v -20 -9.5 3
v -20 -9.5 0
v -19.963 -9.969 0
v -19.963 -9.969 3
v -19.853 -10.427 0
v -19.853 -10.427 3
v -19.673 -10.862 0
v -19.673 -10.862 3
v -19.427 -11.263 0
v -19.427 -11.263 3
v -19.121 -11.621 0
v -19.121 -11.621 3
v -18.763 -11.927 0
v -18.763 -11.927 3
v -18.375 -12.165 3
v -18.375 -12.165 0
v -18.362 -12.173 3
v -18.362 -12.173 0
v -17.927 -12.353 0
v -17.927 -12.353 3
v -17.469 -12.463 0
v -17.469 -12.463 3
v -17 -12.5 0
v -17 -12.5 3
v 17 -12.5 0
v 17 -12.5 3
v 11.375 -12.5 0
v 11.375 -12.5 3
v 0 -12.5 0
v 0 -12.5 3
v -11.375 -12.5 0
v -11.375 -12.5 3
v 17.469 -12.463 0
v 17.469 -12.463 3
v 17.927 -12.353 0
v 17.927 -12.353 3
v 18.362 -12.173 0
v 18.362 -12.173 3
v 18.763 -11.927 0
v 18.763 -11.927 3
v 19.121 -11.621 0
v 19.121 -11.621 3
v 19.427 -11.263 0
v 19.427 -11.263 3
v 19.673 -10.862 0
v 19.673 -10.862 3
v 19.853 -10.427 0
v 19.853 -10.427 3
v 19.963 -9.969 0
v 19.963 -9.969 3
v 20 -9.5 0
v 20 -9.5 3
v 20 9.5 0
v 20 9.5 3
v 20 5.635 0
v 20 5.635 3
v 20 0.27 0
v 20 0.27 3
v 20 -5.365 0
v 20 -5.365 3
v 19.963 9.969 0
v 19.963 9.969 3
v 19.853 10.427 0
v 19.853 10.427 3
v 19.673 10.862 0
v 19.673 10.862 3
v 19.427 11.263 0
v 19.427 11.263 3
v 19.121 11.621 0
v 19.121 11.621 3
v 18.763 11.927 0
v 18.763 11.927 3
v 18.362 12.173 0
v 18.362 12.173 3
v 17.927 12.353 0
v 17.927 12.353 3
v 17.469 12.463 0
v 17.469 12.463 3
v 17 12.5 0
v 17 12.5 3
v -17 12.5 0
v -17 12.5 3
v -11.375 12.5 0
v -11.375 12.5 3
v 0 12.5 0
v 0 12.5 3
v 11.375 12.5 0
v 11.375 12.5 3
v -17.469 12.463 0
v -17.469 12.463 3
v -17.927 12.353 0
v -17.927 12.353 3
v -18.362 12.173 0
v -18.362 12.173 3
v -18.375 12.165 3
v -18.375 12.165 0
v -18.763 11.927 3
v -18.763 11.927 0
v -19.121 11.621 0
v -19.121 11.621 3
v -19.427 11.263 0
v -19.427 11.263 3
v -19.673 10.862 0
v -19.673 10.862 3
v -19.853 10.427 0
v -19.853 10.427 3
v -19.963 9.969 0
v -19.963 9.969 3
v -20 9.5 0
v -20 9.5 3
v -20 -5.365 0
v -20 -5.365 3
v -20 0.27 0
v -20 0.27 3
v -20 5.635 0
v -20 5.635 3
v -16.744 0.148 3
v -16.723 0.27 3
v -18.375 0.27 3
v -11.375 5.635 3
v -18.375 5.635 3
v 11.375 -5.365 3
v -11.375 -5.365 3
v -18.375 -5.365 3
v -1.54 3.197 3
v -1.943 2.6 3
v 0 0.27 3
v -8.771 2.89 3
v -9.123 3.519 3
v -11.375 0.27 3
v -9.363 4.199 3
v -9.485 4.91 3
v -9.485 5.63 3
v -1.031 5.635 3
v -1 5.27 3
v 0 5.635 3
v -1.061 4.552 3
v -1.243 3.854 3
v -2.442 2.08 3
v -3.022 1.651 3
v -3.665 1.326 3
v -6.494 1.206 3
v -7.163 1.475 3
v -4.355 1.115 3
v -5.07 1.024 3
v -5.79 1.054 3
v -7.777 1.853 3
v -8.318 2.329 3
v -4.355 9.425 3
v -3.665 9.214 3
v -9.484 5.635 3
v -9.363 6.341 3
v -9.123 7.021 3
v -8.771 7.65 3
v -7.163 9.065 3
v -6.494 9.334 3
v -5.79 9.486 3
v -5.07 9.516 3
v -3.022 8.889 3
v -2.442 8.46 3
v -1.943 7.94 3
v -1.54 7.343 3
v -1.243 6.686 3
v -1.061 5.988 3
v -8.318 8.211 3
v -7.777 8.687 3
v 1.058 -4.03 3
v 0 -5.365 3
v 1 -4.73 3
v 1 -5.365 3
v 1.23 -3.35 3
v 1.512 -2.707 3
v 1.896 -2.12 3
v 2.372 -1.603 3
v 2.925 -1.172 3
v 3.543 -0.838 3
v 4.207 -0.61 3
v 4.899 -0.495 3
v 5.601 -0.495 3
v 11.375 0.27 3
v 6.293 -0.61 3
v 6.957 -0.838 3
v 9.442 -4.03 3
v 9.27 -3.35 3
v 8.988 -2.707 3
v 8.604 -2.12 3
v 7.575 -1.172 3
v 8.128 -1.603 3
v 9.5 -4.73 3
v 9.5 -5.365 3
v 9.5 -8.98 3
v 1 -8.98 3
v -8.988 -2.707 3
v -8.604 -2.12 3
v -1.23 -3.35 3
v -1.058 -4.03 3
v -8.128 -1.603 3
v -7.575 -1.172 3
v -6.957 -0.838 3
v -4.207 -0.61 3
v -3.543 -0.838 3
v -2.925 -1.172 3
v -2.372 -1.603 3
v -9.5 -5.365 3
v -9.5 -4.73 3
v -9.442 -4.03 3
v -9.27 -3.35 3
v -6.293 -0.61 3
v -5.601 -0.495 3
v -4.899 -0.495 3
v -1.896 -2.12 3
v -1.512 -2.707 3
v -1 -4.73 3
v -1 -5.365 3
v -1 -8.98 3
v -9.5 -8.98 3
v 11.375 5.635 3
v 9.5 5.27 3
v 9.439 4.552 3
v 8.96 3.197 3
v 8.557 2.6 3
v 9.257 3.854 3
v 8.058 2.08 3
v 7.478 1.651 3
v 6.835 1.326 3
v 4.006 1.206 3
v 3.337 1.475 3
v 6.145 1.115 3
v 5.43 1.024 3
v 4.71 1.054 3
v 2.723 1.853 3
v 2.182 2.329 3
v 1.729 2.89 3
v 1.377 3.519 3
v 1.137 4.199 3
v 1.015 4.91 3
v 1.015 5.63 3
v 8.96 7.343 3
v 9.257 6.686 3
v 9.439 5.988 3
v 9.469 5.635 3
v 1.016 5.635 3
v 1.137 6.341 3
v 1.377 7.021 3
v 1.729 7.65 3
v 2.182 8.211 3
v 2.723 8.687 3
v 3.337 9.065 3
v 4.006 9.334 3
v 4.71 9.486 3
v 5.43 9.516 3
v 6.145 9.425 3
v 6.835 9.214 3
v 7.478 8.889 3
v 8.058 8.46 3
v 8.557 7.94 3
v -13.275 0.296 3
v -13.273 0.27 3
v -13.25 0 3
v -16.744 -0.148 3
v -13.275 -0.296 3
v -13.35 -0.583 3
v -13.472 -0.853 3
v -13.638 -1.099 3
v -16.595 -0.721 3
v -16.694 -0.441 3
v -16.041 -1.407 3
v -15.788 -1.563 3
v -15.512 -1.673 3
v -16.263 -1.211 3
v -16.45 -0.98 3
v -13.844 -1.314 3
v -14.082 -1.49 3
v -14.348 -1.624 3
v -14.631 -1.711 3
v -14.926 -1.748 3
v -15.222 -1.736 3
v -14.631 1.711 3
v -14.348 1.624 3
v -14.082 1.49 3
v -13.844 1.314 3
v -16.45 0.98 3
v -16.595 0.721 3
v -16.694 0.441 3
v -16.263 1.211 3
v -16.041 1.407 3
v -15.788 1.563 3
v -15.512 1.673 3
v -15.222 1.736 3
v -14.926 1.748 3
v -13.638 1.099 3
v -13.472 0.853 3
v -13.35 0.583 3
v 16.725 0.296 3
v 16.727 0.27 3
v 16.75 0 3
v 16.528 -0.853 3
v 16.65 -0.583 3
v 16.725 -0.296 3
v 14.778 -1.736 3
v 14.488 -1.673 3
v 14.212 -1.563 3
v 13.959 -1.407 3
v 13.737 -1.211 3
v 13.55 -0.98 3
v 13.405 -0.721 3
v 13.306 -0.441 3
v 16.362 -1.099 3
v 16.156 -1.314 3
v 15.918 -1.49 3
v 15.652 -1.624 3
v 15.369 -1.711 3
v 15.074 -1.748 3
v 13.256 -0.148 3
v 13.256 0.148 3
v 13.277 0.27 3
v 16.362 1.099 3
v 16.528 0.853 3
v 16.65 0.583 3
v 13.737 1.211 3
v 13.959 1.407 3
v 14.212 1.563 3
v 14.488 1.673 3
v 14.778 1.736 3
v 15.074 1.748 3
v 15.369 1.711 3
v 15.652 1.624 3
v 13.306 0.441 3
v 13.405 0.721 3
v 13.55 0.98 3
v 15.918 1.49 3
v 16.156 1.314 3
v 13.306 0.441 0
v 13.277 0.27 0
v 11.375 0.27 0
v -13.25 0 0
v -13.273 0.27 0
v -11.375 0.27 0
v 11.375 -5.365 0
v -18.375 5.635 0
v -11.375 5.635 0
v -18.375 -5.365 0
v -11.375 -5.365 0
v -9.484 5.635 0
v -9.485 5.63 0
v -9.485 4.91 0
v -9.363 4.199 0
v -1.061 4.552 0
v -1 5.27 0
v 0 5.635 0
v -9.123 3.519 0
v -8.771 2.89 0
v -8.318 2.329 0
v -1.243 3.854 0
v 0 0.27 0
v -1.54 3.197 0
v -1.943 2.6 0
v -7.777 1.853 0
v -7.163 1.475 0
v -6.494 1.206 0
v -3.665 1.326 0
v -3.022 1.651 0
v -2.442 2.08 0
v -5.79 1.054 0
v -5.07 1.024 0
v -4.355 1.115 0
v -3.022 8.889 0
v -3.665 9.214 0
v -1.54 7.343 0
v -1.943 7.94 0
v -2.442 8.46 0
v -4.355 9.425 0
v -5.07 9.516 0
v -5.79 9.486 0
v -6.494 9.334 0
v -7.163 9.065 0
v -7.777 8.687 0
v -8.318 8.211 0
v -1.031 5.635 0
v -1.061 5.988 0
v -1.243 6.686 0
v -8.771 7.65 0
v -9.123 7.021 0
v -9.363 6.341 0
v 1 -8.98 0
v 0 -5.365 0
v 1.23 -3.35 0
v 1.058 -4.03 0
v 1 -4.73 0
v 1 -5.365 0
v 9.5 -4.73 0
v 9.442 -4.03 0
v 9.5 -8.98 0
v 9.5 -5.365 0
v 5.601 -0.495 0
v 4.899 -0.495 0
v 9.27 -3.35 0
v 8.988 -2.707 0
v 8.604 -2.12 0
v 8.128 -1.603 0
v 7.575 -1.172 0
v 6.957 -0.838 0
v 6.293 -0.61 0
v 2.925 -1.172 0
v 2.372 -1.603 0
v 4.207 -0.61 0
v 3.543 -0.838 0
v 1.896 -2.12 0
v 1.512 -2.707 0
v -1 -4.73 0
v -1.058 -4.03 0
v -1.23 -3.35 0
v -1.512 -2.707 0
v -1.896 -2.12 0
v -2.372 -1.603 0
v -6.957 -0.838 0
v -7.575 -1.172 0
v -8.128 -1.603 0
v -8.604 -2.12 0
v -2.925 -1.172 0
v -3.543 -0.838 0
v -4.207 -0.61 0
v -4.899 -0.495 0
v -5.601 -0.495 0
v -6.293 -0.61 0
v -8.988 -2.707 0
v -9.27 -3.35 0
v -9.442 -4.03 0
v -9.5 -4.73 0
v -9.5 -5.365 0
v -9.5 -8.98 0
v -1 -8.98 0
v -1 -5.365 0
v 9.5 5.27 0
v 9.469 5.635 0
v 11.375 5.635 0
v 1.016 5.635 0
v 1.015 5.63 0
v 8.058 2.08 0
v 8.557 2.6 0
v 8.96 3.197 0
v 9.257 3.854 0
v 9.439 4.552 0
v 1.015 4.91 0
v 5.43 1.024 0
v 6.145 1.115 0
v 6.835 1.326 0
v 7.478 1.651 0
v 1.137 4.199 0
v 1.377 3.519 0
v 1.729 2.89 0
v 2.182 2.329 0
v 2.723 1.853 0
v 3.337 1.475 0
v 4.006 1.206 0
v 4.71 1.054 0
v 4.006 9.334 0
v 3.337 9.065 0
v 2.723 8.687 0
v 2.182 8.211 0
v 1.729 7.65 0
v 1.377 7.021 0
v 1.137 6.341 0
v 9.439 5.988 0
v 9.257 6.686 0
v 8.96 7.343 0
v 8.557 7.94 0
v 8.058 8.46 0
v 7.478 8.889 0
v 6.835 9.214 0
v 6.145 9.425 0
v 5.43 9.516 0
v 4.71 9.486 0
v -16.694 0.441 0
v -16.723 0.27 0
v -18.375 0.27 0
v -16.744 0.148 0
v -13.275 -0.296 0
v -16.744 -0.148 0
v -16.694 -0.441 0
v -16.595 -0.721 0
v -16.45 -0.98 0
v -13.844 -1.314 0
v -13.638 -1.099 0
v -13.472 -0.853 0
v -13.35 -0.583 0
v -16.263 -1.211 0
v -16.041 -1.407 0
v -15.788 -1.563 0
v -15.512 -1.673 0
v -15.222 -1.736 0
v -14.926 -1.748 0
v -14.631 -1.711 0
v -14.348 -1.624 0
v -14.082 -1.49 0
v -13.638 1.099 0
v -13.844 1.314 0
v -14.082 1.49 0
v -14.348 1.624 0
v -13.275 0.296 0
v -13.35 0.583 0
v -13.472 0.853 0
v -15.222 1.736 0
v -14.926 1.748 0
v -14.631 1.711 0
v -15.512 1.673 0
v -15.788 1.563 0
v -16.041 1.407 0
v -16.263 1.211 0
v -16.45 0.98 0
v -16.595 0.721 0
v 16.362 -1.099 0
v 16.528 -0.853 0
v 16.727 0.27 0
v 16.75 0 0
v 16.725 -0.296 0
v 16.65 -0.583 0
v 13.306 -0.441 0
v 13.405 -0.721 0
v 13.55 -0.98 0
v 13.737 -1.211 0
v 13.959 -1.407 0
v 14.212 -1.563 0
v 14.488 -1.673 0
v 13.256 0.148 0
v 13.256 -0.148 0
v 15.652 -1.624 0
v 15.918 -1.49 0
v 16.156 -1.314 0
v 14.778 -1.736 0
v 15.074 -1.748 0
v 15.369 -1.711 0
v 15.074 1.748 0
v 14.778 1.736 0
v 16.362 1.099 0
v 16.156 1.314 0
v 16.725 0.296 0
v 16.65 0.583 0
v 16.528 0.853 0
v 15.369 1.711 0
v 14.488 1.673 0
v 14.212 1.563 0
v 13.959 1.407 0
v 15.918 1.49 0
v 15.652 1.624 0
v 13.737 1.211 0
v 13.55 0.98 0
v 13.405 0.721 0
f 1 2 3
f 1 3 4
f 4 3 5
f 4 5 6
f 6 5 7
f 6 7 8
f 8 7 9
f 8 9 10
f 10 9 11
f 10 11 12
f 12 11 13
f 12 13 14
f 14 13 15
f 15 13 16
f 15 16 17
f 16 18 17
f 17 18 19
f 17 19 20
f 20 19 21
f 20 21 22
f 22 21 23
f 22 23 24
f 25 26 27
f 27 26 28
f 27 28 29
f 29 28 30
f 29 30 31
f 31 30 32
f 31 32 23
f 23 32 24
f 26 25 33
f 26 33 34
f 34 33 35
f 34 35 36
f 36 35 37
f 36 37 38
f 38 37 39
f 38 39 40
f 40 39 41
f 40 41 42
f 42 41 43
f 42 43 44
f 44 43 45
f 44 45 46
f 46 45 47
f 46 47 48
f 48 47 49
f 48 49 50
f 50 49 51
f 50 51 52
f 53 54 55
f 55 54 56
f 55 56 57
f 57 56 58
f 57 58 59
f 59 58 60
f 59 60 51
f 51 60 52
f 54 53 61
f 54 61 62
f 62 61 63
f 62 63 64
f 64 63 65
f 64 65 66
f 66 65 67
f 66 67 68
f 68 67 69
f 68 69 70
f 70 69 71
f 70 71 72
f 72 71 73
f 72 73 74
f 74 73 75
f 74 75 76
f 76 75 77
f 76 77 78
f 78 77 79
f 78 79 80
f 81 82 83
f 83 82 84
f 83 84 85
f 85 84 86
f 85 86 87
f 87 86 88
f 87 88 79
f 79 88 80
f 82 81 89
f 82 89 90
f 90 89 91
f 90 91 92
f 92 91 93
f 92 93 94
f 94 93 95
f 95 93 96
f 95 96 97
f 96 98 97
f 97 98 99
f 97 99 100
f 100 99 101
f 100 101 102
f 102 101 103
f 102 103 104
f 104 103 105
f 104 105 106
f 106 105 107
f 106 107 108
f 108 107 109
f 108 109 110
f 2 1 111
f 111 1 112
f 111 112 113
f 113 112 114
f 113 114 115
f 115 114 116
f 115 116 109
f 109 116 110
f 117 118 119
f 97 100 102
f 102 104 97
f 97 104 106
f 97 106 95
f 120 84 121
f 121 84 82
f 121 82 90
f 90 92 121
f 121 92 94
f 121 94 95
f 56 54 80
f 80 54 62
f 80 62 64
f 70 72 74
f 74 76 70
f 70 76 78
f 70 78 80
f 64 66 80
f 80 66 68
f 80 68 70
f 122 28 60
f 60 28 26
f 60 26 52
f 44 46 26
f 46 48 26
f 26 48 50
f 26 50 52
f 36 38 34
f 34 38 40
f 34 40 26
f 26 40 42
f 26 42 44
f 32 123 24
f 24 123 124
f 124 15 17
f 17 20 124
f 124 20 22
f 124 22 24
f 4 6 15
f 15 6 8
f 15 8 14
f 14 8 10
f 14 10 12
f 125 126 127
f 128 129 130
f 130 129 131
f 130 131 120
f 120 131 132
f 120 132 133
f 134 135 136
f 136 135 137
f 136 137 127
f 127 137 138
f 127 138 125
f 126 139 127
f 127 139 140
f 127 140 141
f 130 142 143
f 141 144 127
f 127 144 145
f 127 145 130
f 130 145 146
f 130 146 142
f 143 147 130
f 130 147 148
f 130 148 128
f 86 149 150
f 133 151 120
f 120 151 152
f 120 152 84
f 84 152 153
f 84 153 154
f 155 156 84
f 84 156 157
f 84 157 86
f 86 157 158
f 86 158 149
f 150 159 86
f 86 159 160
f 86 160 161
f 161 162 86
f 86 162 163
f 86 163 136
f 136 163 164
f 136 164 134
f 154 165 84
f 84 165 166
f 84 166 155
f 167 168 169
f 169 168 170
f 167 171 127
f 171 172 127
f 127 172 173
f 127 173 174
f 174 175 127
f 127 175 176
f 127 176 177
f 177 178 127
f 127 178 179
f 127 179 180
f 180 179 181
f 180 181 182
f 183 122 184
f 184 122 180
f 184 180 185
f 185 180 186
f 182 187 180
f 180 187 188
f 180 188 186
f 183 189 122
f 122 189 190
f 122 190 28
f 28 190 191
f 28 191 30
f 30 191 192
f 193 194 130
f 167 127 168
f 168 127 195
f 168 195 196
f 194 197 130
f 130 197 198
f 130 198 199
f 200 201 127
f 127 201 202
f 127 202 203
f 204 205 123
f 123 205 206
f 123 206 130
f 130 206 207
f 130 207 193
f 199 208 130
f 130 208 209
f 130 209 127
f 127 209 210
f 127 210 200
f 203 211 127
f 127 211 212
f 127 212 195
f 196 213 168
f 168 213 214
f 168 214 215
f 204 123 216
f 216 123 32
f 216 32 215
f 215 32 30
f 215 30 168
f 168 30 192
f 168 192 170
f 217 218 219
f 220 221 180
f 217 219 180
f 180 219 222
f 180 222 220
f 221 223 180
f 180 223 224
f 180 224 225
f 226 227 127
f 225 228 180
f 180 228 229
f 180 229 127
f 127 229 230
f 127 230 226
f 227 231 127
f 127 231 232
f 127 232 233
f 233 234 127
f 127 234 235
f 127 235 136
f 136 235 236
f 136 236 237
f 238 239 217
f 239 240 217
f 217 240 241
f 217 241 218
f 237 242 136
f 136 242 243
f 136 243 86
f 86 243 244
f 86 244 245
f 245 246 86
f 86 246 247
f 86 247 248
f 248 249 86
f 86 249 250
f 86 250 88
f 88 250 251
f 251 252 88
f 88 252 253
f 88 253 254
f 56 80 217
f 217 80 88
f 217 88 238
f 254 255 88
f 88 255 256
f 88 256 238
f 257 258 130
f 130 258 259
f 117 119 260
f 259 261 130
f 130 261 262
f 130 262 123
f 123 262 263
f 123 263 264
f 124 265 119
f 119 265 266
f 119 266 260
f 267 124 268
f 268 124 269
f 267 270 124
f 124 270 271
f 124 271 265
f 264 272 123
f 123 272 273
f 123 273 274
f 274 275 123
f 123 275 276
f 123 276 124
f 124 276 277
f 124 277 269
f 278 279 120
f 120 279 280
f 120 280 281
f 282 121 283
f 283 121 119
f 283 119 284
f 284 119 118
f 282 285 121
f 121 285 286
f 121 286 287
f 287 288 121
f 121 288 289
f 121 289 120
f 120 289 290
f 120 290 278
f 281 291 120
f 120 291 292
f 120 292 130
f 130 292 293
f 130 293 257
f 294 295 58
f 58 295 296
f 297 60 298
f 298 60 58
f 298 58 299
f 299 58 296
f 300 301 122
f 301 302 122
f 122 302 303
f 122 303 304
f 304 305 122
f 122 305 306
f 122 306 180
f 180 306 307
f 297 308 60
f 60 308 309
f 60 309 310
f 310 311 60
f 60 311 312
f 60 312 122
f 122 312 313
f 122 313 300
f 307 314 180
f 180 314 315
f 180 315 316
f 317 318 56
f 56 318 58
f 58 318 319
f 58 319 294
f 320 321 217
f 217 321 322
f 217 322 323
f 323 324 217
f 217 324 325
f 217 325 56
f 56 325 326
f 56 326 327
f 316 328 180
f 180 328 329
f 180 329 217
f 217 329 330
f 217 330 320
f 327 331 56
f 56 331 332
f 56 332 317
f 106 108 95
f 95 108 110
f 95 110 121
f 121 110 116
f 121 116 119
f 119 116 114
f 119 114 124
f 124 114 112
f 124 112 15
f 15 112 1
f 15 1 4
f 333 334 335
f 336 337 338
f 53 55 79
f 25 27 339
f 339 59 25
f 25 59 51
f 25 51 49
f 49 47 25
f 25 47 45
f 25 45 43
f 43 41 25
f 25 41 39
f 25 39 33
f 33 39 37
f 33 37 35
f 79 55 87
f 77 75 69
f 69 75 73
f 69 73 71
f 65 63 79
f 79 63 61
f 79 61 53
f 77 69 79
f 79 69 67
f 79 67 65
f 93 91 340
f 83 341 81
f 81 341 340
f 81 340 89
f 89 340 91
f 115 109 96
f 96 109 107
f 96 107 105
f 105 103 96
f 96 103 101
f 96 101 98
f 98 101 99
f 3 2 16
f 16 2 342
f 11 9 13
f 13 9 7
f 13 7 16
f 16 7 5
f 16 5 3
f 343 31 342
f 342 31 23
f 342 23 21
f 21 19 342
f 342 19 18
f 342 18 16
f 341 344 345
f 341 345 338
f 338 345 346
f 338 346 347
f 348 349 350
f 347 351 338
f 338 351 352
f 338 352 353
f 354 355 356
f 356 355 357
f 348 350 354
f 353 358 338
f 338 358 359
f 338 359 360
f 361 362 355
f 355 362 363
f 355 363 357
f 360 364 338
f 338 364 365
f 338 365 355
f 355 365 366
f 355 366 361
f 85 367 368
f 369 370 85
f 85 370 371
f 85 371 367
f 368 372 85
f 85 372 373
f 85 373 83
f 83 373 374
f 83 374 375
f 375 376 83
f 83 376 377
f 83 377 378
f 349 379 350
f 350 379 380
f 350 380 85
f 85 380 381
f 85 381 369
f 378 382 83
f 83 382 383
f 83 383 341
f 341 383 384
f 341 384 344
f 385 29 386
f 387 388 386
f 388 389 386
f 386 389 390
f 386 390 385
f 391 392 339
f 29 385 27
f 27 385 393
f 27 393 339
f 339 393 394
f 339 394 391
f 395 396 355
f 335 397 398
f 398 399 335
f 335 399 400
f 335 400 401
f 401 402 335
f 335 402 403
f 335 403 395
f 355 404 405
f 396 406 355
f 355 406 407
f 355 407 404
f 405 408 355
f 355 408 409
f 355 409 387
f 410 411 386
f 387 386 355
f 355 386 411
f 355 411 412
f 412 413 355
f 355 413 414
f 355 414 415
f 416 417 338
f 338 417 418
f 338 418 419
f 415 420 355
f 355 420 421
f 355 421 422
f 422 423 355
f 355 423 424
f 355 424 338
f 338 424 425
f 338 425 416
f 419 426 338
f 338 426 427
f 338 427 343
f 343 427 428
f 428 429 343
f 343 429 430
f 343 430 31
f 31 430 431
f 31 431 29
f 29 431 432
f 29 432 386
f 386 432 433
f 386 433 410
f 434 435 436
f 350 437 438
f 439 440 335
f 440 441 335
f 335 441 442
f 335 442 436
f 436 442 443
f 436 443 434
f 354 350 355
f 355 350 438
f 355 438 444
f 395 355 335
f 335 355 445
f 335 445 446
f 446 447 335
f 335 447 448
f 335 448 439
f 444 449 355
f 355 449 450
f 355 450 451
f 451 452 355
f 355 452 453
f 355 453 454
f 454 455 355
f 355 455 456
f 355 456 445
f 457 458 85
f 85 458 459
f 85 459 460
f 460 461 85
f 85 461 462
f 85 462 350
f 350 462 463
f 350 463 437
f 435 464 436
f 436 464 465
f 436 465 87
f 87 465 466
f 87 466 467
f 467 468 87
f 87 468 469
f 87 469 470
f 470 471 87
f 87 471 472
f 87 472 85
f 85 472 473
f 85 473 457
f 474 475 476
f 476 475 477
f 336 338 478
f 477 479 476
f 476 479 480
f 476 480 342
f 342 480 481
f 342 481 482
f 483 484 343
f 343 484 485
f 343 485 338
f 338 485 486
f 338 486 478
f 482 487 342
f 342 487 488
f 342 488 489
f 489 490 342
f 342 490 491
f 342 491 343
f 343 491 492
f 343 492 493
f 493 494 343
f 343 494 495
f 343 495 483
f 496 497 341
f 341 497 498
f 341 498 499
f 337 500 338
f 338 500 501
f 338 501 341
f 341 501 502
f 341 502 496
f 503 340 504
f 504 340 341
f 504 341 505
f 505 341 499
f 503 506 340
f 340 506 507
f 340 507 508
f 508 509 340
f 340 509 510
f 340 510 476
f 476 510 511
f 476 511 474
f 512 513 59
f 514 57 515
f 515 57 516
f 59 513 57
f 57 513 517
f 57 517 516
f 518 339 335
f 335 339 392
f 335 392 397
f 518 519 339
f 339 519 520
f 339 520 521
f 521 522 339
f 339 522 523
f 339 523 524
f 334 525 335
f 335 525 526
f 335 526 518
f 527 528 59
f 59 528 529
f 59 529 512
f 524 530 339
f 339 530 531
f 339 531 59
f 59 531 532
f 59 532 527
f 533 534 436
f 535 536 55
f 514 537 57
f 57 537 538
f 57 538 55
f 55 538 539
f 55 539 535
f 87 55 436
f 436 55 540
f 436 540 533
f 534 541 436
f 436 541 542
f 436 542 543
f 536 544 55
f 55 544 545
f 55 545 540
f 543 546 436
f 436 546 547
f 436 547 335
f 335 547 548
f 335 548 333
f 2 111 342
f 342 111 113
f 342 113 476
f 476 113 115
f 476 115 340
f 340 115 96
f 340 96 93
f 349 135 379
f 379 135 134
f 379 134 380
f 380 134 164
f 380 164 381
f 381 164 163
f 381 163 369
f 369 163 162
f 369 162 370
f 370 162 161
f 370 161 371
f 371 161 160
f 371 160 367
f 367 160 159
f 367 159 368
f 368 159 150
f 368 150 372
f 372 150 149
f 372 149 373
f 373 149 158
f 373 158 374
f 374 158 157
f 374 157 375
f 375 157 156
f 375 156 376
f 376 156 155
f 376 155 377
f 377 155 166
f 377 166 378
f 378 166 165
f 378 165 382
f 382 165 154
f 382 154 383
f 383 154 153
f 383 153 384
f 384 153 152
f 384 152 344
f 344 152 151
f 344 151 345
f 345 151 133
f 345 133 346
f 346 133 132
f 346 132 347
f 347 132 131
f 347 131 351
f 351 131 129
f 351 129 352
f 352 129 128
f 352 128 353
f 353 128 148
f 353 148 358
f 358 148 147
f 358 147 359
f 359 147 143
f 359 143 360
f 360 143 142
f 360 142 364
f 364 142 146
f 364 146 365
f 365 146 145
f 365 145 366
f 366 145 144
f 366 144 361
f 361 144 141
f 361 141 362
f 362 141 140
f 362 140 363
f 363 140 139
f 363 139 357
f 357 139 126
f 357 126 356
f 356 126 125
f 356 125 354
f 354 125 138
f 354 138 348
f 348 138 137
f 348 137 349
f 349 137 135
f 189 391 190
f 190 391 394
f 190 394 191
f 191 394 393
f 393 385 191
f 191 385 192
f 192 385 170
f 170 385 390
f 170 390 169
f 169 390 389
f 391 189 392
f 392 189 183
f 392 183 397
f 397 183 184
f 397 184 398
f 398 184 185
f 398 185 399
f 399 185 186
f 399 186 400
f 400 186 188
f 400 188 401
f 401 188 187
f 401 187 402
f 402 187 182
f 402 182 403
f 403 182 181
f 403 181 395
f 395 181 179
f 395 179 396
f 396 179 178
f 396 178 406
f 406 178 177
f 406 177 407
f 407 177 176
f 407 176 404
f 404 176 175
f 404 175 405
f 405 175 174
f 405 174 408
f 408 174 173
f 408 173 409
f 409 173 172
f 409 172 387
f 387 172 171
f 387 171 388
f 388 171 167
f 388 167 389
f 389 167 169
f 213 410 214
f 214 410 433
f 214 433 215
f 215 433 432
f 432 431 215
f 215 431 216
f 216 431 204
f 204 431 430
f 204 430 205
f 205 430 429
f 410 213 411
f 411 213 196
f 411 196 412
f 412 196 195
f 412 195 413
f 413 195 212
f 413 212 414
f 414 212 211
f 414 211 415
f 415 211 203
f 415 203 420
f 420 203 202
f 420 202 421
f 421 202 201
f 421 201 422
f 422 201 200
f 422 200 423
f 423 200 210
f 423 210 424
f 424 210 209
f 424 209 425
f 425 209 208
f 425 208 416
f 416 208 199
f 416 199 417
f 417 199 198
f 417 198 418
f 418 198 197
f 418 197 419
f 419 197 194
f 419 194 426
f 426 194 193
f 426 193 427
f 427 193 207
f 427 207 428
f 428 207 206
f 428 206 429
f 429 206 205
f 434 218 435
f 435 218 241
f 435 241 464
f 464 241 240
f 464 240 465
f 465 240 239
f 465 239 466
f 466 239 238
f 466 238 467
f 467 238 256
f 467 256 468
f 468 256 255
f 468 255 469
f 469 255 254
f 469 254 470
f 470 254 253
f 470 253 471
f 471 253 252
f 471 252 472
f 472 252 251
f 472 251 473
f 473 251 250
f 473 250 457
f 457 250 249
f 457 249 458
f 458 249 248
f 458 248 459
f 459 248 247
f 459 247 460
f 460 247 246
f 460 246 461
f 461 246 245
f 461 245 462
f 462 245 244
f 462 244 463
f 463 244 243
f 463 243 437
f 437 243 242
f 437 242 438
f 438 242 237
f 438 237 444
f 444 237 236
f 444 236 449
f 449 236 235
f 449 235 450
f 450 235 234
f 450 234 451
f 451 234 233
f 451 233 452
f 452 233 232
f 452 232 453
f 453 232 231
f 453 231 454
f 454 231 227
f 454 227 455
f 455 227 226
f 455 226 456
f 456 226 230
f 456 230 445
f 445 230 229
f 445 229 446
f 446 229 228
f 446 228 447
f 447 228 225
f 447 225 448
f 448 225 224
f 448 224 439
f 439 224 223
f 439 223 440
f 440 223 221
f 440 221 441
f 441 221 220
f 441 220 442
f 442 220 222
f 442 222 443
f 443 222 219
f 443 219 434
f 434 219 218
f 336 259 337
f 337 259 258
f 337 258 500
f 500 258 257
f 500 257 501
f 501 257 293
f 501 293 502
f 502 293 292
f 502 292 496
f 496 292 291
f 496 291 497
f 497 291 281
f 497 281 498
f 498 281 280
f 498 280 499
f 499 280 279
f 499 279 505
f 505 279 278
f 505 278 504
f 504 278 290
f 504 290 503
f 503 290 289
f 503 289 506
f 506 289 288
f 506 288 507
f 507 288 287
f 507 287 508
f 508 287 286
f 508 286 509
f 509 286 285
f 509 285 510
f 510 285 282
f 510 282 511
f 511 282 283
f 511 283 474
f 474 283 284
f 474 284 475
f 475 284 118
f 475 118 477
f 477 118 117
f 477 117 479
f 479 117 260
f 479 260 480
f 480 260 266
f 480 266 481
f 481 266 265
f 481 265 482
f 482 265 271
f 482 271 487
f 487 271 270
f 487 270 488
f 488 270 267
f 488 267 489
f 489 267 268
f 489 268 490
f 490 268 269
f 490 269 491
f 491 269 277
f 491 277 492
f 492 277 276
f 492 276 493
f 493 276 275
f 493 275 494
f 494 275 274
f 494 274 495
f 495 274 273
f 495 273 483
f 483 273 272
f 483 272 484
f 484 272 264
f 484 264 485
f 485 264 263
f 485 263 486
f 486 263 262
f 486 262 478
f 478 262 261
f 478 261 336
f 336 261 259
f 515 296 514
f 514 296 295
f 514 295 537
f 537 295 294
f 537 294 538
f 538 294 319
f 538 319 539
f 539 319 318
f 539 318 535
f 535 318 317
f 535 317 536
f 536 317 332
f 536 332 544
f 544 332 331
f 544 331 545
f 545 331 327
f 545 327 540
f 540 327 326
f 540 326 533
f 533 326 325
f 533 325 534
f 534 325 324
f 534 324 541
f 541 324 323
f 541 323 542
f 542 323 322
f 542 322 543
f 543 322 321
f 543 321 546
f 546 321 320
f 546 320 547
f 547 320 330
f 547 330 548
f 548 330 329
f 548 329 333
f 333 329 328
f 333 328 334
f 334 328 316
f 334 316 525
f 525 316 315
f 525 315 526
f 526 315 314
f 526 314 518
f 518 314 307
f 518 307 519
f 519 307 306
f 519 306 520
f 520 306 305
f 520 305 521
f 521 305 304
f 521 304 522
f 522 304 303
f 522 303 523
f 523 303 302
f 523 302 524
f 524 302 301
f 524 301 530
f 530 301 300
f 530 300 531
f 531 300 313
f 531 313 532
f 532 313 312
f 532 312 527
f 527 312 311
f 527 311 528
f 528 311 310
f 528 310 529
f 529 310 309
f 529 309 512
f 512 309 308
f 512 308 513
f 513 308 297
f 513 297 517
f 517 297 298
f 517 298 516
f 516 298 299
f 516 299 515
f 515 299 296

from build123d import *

# Parameters (mm, degrees)
BOSS_EXTRUDE1_DEPTH = 3
SKETCH2_R           = 4.25
CUT_EXTRUDE1_DEPTH  = 3
SKETCH3_R           = 1.75
CUT_EXTRUDE2_DEPTH  = 3


with BuildPart() as part:
    # Sketch1 → Boss-Extrude1 (new body)
    with BuildSketch(Plane.XY):
        with BuildLine():
            Line((-17, 12.5), (17, 12.5))
            ThreePointArc((17, 12.5), (19.121320344, 11.621320344), (20, 9.5))
            Line((20, 9.5), (20, -9.5))
            ThreePointArc((20, -9.5), (19.121320344, -11.621320344), (17, -12.5))
            Line((17, -12.5), (-17, -12.5))
            ThreePointArc((-17, -12.5), (-19.121320344, -11.621320344), (-20, -9.5))
            Line((-20, -9.5), (-20, 9.5))
            ThreePointArc((-20, 9.5), (-19.121320344, 11.621320344), (-17, 12.5))
        make_face()
    extrude(amount=BOSS_EXTRUDE1_DEPTH)

    # Sketch2 → Cut-Extrude1 (cut)
    with BuildSketch(Plane.XY.offset(3)):
        with Locations((-5.25, 5.27)):
            Circle(SKETCH2_R)
        with Locations((5.25, 5.27)):
            Circle(SKETCH2_R)
        with BuildLine():
            Line((-9.5, -4.73), (-9.5, -8.98))
            Line((-9.5, -8.98), (-1, -8.98))
            Line((-1, -8.98), (-1, -4.73))
            ThreePointArc((-1, -4.73), (-5.25, -0.48), (-9.5, -4.73))
        make_face()
        with BuildLine():
            Line((1, -4.73), (1, -8.98))
            Line((1, -8.98), (9.5, -8.98))
            Line((9.5, -8.98), (9.5, -4.73))
            ThreePointArc((9.5, -4.73), (5.25, -0.48), (1, -4.73))
        make_face()
    extrude(amount=-CUT_EXTRUDE1_DEPTH, mode=Mode.SUBTRACT)

    # Sketch3 → Cut-Extrude2 (cut)
    with BuildSketch(Plane.XY.offset(3)):
        with Locations((-15, 0)):
            Circle(SKETCH3_R)
        with Locations((15, 0)):
            Circle(SKETCH3_R)
    extrude(amount=-CUT_EXTRUDE2_DEPTH, mode=Mode.SUBTRACT)


solid = part.part
